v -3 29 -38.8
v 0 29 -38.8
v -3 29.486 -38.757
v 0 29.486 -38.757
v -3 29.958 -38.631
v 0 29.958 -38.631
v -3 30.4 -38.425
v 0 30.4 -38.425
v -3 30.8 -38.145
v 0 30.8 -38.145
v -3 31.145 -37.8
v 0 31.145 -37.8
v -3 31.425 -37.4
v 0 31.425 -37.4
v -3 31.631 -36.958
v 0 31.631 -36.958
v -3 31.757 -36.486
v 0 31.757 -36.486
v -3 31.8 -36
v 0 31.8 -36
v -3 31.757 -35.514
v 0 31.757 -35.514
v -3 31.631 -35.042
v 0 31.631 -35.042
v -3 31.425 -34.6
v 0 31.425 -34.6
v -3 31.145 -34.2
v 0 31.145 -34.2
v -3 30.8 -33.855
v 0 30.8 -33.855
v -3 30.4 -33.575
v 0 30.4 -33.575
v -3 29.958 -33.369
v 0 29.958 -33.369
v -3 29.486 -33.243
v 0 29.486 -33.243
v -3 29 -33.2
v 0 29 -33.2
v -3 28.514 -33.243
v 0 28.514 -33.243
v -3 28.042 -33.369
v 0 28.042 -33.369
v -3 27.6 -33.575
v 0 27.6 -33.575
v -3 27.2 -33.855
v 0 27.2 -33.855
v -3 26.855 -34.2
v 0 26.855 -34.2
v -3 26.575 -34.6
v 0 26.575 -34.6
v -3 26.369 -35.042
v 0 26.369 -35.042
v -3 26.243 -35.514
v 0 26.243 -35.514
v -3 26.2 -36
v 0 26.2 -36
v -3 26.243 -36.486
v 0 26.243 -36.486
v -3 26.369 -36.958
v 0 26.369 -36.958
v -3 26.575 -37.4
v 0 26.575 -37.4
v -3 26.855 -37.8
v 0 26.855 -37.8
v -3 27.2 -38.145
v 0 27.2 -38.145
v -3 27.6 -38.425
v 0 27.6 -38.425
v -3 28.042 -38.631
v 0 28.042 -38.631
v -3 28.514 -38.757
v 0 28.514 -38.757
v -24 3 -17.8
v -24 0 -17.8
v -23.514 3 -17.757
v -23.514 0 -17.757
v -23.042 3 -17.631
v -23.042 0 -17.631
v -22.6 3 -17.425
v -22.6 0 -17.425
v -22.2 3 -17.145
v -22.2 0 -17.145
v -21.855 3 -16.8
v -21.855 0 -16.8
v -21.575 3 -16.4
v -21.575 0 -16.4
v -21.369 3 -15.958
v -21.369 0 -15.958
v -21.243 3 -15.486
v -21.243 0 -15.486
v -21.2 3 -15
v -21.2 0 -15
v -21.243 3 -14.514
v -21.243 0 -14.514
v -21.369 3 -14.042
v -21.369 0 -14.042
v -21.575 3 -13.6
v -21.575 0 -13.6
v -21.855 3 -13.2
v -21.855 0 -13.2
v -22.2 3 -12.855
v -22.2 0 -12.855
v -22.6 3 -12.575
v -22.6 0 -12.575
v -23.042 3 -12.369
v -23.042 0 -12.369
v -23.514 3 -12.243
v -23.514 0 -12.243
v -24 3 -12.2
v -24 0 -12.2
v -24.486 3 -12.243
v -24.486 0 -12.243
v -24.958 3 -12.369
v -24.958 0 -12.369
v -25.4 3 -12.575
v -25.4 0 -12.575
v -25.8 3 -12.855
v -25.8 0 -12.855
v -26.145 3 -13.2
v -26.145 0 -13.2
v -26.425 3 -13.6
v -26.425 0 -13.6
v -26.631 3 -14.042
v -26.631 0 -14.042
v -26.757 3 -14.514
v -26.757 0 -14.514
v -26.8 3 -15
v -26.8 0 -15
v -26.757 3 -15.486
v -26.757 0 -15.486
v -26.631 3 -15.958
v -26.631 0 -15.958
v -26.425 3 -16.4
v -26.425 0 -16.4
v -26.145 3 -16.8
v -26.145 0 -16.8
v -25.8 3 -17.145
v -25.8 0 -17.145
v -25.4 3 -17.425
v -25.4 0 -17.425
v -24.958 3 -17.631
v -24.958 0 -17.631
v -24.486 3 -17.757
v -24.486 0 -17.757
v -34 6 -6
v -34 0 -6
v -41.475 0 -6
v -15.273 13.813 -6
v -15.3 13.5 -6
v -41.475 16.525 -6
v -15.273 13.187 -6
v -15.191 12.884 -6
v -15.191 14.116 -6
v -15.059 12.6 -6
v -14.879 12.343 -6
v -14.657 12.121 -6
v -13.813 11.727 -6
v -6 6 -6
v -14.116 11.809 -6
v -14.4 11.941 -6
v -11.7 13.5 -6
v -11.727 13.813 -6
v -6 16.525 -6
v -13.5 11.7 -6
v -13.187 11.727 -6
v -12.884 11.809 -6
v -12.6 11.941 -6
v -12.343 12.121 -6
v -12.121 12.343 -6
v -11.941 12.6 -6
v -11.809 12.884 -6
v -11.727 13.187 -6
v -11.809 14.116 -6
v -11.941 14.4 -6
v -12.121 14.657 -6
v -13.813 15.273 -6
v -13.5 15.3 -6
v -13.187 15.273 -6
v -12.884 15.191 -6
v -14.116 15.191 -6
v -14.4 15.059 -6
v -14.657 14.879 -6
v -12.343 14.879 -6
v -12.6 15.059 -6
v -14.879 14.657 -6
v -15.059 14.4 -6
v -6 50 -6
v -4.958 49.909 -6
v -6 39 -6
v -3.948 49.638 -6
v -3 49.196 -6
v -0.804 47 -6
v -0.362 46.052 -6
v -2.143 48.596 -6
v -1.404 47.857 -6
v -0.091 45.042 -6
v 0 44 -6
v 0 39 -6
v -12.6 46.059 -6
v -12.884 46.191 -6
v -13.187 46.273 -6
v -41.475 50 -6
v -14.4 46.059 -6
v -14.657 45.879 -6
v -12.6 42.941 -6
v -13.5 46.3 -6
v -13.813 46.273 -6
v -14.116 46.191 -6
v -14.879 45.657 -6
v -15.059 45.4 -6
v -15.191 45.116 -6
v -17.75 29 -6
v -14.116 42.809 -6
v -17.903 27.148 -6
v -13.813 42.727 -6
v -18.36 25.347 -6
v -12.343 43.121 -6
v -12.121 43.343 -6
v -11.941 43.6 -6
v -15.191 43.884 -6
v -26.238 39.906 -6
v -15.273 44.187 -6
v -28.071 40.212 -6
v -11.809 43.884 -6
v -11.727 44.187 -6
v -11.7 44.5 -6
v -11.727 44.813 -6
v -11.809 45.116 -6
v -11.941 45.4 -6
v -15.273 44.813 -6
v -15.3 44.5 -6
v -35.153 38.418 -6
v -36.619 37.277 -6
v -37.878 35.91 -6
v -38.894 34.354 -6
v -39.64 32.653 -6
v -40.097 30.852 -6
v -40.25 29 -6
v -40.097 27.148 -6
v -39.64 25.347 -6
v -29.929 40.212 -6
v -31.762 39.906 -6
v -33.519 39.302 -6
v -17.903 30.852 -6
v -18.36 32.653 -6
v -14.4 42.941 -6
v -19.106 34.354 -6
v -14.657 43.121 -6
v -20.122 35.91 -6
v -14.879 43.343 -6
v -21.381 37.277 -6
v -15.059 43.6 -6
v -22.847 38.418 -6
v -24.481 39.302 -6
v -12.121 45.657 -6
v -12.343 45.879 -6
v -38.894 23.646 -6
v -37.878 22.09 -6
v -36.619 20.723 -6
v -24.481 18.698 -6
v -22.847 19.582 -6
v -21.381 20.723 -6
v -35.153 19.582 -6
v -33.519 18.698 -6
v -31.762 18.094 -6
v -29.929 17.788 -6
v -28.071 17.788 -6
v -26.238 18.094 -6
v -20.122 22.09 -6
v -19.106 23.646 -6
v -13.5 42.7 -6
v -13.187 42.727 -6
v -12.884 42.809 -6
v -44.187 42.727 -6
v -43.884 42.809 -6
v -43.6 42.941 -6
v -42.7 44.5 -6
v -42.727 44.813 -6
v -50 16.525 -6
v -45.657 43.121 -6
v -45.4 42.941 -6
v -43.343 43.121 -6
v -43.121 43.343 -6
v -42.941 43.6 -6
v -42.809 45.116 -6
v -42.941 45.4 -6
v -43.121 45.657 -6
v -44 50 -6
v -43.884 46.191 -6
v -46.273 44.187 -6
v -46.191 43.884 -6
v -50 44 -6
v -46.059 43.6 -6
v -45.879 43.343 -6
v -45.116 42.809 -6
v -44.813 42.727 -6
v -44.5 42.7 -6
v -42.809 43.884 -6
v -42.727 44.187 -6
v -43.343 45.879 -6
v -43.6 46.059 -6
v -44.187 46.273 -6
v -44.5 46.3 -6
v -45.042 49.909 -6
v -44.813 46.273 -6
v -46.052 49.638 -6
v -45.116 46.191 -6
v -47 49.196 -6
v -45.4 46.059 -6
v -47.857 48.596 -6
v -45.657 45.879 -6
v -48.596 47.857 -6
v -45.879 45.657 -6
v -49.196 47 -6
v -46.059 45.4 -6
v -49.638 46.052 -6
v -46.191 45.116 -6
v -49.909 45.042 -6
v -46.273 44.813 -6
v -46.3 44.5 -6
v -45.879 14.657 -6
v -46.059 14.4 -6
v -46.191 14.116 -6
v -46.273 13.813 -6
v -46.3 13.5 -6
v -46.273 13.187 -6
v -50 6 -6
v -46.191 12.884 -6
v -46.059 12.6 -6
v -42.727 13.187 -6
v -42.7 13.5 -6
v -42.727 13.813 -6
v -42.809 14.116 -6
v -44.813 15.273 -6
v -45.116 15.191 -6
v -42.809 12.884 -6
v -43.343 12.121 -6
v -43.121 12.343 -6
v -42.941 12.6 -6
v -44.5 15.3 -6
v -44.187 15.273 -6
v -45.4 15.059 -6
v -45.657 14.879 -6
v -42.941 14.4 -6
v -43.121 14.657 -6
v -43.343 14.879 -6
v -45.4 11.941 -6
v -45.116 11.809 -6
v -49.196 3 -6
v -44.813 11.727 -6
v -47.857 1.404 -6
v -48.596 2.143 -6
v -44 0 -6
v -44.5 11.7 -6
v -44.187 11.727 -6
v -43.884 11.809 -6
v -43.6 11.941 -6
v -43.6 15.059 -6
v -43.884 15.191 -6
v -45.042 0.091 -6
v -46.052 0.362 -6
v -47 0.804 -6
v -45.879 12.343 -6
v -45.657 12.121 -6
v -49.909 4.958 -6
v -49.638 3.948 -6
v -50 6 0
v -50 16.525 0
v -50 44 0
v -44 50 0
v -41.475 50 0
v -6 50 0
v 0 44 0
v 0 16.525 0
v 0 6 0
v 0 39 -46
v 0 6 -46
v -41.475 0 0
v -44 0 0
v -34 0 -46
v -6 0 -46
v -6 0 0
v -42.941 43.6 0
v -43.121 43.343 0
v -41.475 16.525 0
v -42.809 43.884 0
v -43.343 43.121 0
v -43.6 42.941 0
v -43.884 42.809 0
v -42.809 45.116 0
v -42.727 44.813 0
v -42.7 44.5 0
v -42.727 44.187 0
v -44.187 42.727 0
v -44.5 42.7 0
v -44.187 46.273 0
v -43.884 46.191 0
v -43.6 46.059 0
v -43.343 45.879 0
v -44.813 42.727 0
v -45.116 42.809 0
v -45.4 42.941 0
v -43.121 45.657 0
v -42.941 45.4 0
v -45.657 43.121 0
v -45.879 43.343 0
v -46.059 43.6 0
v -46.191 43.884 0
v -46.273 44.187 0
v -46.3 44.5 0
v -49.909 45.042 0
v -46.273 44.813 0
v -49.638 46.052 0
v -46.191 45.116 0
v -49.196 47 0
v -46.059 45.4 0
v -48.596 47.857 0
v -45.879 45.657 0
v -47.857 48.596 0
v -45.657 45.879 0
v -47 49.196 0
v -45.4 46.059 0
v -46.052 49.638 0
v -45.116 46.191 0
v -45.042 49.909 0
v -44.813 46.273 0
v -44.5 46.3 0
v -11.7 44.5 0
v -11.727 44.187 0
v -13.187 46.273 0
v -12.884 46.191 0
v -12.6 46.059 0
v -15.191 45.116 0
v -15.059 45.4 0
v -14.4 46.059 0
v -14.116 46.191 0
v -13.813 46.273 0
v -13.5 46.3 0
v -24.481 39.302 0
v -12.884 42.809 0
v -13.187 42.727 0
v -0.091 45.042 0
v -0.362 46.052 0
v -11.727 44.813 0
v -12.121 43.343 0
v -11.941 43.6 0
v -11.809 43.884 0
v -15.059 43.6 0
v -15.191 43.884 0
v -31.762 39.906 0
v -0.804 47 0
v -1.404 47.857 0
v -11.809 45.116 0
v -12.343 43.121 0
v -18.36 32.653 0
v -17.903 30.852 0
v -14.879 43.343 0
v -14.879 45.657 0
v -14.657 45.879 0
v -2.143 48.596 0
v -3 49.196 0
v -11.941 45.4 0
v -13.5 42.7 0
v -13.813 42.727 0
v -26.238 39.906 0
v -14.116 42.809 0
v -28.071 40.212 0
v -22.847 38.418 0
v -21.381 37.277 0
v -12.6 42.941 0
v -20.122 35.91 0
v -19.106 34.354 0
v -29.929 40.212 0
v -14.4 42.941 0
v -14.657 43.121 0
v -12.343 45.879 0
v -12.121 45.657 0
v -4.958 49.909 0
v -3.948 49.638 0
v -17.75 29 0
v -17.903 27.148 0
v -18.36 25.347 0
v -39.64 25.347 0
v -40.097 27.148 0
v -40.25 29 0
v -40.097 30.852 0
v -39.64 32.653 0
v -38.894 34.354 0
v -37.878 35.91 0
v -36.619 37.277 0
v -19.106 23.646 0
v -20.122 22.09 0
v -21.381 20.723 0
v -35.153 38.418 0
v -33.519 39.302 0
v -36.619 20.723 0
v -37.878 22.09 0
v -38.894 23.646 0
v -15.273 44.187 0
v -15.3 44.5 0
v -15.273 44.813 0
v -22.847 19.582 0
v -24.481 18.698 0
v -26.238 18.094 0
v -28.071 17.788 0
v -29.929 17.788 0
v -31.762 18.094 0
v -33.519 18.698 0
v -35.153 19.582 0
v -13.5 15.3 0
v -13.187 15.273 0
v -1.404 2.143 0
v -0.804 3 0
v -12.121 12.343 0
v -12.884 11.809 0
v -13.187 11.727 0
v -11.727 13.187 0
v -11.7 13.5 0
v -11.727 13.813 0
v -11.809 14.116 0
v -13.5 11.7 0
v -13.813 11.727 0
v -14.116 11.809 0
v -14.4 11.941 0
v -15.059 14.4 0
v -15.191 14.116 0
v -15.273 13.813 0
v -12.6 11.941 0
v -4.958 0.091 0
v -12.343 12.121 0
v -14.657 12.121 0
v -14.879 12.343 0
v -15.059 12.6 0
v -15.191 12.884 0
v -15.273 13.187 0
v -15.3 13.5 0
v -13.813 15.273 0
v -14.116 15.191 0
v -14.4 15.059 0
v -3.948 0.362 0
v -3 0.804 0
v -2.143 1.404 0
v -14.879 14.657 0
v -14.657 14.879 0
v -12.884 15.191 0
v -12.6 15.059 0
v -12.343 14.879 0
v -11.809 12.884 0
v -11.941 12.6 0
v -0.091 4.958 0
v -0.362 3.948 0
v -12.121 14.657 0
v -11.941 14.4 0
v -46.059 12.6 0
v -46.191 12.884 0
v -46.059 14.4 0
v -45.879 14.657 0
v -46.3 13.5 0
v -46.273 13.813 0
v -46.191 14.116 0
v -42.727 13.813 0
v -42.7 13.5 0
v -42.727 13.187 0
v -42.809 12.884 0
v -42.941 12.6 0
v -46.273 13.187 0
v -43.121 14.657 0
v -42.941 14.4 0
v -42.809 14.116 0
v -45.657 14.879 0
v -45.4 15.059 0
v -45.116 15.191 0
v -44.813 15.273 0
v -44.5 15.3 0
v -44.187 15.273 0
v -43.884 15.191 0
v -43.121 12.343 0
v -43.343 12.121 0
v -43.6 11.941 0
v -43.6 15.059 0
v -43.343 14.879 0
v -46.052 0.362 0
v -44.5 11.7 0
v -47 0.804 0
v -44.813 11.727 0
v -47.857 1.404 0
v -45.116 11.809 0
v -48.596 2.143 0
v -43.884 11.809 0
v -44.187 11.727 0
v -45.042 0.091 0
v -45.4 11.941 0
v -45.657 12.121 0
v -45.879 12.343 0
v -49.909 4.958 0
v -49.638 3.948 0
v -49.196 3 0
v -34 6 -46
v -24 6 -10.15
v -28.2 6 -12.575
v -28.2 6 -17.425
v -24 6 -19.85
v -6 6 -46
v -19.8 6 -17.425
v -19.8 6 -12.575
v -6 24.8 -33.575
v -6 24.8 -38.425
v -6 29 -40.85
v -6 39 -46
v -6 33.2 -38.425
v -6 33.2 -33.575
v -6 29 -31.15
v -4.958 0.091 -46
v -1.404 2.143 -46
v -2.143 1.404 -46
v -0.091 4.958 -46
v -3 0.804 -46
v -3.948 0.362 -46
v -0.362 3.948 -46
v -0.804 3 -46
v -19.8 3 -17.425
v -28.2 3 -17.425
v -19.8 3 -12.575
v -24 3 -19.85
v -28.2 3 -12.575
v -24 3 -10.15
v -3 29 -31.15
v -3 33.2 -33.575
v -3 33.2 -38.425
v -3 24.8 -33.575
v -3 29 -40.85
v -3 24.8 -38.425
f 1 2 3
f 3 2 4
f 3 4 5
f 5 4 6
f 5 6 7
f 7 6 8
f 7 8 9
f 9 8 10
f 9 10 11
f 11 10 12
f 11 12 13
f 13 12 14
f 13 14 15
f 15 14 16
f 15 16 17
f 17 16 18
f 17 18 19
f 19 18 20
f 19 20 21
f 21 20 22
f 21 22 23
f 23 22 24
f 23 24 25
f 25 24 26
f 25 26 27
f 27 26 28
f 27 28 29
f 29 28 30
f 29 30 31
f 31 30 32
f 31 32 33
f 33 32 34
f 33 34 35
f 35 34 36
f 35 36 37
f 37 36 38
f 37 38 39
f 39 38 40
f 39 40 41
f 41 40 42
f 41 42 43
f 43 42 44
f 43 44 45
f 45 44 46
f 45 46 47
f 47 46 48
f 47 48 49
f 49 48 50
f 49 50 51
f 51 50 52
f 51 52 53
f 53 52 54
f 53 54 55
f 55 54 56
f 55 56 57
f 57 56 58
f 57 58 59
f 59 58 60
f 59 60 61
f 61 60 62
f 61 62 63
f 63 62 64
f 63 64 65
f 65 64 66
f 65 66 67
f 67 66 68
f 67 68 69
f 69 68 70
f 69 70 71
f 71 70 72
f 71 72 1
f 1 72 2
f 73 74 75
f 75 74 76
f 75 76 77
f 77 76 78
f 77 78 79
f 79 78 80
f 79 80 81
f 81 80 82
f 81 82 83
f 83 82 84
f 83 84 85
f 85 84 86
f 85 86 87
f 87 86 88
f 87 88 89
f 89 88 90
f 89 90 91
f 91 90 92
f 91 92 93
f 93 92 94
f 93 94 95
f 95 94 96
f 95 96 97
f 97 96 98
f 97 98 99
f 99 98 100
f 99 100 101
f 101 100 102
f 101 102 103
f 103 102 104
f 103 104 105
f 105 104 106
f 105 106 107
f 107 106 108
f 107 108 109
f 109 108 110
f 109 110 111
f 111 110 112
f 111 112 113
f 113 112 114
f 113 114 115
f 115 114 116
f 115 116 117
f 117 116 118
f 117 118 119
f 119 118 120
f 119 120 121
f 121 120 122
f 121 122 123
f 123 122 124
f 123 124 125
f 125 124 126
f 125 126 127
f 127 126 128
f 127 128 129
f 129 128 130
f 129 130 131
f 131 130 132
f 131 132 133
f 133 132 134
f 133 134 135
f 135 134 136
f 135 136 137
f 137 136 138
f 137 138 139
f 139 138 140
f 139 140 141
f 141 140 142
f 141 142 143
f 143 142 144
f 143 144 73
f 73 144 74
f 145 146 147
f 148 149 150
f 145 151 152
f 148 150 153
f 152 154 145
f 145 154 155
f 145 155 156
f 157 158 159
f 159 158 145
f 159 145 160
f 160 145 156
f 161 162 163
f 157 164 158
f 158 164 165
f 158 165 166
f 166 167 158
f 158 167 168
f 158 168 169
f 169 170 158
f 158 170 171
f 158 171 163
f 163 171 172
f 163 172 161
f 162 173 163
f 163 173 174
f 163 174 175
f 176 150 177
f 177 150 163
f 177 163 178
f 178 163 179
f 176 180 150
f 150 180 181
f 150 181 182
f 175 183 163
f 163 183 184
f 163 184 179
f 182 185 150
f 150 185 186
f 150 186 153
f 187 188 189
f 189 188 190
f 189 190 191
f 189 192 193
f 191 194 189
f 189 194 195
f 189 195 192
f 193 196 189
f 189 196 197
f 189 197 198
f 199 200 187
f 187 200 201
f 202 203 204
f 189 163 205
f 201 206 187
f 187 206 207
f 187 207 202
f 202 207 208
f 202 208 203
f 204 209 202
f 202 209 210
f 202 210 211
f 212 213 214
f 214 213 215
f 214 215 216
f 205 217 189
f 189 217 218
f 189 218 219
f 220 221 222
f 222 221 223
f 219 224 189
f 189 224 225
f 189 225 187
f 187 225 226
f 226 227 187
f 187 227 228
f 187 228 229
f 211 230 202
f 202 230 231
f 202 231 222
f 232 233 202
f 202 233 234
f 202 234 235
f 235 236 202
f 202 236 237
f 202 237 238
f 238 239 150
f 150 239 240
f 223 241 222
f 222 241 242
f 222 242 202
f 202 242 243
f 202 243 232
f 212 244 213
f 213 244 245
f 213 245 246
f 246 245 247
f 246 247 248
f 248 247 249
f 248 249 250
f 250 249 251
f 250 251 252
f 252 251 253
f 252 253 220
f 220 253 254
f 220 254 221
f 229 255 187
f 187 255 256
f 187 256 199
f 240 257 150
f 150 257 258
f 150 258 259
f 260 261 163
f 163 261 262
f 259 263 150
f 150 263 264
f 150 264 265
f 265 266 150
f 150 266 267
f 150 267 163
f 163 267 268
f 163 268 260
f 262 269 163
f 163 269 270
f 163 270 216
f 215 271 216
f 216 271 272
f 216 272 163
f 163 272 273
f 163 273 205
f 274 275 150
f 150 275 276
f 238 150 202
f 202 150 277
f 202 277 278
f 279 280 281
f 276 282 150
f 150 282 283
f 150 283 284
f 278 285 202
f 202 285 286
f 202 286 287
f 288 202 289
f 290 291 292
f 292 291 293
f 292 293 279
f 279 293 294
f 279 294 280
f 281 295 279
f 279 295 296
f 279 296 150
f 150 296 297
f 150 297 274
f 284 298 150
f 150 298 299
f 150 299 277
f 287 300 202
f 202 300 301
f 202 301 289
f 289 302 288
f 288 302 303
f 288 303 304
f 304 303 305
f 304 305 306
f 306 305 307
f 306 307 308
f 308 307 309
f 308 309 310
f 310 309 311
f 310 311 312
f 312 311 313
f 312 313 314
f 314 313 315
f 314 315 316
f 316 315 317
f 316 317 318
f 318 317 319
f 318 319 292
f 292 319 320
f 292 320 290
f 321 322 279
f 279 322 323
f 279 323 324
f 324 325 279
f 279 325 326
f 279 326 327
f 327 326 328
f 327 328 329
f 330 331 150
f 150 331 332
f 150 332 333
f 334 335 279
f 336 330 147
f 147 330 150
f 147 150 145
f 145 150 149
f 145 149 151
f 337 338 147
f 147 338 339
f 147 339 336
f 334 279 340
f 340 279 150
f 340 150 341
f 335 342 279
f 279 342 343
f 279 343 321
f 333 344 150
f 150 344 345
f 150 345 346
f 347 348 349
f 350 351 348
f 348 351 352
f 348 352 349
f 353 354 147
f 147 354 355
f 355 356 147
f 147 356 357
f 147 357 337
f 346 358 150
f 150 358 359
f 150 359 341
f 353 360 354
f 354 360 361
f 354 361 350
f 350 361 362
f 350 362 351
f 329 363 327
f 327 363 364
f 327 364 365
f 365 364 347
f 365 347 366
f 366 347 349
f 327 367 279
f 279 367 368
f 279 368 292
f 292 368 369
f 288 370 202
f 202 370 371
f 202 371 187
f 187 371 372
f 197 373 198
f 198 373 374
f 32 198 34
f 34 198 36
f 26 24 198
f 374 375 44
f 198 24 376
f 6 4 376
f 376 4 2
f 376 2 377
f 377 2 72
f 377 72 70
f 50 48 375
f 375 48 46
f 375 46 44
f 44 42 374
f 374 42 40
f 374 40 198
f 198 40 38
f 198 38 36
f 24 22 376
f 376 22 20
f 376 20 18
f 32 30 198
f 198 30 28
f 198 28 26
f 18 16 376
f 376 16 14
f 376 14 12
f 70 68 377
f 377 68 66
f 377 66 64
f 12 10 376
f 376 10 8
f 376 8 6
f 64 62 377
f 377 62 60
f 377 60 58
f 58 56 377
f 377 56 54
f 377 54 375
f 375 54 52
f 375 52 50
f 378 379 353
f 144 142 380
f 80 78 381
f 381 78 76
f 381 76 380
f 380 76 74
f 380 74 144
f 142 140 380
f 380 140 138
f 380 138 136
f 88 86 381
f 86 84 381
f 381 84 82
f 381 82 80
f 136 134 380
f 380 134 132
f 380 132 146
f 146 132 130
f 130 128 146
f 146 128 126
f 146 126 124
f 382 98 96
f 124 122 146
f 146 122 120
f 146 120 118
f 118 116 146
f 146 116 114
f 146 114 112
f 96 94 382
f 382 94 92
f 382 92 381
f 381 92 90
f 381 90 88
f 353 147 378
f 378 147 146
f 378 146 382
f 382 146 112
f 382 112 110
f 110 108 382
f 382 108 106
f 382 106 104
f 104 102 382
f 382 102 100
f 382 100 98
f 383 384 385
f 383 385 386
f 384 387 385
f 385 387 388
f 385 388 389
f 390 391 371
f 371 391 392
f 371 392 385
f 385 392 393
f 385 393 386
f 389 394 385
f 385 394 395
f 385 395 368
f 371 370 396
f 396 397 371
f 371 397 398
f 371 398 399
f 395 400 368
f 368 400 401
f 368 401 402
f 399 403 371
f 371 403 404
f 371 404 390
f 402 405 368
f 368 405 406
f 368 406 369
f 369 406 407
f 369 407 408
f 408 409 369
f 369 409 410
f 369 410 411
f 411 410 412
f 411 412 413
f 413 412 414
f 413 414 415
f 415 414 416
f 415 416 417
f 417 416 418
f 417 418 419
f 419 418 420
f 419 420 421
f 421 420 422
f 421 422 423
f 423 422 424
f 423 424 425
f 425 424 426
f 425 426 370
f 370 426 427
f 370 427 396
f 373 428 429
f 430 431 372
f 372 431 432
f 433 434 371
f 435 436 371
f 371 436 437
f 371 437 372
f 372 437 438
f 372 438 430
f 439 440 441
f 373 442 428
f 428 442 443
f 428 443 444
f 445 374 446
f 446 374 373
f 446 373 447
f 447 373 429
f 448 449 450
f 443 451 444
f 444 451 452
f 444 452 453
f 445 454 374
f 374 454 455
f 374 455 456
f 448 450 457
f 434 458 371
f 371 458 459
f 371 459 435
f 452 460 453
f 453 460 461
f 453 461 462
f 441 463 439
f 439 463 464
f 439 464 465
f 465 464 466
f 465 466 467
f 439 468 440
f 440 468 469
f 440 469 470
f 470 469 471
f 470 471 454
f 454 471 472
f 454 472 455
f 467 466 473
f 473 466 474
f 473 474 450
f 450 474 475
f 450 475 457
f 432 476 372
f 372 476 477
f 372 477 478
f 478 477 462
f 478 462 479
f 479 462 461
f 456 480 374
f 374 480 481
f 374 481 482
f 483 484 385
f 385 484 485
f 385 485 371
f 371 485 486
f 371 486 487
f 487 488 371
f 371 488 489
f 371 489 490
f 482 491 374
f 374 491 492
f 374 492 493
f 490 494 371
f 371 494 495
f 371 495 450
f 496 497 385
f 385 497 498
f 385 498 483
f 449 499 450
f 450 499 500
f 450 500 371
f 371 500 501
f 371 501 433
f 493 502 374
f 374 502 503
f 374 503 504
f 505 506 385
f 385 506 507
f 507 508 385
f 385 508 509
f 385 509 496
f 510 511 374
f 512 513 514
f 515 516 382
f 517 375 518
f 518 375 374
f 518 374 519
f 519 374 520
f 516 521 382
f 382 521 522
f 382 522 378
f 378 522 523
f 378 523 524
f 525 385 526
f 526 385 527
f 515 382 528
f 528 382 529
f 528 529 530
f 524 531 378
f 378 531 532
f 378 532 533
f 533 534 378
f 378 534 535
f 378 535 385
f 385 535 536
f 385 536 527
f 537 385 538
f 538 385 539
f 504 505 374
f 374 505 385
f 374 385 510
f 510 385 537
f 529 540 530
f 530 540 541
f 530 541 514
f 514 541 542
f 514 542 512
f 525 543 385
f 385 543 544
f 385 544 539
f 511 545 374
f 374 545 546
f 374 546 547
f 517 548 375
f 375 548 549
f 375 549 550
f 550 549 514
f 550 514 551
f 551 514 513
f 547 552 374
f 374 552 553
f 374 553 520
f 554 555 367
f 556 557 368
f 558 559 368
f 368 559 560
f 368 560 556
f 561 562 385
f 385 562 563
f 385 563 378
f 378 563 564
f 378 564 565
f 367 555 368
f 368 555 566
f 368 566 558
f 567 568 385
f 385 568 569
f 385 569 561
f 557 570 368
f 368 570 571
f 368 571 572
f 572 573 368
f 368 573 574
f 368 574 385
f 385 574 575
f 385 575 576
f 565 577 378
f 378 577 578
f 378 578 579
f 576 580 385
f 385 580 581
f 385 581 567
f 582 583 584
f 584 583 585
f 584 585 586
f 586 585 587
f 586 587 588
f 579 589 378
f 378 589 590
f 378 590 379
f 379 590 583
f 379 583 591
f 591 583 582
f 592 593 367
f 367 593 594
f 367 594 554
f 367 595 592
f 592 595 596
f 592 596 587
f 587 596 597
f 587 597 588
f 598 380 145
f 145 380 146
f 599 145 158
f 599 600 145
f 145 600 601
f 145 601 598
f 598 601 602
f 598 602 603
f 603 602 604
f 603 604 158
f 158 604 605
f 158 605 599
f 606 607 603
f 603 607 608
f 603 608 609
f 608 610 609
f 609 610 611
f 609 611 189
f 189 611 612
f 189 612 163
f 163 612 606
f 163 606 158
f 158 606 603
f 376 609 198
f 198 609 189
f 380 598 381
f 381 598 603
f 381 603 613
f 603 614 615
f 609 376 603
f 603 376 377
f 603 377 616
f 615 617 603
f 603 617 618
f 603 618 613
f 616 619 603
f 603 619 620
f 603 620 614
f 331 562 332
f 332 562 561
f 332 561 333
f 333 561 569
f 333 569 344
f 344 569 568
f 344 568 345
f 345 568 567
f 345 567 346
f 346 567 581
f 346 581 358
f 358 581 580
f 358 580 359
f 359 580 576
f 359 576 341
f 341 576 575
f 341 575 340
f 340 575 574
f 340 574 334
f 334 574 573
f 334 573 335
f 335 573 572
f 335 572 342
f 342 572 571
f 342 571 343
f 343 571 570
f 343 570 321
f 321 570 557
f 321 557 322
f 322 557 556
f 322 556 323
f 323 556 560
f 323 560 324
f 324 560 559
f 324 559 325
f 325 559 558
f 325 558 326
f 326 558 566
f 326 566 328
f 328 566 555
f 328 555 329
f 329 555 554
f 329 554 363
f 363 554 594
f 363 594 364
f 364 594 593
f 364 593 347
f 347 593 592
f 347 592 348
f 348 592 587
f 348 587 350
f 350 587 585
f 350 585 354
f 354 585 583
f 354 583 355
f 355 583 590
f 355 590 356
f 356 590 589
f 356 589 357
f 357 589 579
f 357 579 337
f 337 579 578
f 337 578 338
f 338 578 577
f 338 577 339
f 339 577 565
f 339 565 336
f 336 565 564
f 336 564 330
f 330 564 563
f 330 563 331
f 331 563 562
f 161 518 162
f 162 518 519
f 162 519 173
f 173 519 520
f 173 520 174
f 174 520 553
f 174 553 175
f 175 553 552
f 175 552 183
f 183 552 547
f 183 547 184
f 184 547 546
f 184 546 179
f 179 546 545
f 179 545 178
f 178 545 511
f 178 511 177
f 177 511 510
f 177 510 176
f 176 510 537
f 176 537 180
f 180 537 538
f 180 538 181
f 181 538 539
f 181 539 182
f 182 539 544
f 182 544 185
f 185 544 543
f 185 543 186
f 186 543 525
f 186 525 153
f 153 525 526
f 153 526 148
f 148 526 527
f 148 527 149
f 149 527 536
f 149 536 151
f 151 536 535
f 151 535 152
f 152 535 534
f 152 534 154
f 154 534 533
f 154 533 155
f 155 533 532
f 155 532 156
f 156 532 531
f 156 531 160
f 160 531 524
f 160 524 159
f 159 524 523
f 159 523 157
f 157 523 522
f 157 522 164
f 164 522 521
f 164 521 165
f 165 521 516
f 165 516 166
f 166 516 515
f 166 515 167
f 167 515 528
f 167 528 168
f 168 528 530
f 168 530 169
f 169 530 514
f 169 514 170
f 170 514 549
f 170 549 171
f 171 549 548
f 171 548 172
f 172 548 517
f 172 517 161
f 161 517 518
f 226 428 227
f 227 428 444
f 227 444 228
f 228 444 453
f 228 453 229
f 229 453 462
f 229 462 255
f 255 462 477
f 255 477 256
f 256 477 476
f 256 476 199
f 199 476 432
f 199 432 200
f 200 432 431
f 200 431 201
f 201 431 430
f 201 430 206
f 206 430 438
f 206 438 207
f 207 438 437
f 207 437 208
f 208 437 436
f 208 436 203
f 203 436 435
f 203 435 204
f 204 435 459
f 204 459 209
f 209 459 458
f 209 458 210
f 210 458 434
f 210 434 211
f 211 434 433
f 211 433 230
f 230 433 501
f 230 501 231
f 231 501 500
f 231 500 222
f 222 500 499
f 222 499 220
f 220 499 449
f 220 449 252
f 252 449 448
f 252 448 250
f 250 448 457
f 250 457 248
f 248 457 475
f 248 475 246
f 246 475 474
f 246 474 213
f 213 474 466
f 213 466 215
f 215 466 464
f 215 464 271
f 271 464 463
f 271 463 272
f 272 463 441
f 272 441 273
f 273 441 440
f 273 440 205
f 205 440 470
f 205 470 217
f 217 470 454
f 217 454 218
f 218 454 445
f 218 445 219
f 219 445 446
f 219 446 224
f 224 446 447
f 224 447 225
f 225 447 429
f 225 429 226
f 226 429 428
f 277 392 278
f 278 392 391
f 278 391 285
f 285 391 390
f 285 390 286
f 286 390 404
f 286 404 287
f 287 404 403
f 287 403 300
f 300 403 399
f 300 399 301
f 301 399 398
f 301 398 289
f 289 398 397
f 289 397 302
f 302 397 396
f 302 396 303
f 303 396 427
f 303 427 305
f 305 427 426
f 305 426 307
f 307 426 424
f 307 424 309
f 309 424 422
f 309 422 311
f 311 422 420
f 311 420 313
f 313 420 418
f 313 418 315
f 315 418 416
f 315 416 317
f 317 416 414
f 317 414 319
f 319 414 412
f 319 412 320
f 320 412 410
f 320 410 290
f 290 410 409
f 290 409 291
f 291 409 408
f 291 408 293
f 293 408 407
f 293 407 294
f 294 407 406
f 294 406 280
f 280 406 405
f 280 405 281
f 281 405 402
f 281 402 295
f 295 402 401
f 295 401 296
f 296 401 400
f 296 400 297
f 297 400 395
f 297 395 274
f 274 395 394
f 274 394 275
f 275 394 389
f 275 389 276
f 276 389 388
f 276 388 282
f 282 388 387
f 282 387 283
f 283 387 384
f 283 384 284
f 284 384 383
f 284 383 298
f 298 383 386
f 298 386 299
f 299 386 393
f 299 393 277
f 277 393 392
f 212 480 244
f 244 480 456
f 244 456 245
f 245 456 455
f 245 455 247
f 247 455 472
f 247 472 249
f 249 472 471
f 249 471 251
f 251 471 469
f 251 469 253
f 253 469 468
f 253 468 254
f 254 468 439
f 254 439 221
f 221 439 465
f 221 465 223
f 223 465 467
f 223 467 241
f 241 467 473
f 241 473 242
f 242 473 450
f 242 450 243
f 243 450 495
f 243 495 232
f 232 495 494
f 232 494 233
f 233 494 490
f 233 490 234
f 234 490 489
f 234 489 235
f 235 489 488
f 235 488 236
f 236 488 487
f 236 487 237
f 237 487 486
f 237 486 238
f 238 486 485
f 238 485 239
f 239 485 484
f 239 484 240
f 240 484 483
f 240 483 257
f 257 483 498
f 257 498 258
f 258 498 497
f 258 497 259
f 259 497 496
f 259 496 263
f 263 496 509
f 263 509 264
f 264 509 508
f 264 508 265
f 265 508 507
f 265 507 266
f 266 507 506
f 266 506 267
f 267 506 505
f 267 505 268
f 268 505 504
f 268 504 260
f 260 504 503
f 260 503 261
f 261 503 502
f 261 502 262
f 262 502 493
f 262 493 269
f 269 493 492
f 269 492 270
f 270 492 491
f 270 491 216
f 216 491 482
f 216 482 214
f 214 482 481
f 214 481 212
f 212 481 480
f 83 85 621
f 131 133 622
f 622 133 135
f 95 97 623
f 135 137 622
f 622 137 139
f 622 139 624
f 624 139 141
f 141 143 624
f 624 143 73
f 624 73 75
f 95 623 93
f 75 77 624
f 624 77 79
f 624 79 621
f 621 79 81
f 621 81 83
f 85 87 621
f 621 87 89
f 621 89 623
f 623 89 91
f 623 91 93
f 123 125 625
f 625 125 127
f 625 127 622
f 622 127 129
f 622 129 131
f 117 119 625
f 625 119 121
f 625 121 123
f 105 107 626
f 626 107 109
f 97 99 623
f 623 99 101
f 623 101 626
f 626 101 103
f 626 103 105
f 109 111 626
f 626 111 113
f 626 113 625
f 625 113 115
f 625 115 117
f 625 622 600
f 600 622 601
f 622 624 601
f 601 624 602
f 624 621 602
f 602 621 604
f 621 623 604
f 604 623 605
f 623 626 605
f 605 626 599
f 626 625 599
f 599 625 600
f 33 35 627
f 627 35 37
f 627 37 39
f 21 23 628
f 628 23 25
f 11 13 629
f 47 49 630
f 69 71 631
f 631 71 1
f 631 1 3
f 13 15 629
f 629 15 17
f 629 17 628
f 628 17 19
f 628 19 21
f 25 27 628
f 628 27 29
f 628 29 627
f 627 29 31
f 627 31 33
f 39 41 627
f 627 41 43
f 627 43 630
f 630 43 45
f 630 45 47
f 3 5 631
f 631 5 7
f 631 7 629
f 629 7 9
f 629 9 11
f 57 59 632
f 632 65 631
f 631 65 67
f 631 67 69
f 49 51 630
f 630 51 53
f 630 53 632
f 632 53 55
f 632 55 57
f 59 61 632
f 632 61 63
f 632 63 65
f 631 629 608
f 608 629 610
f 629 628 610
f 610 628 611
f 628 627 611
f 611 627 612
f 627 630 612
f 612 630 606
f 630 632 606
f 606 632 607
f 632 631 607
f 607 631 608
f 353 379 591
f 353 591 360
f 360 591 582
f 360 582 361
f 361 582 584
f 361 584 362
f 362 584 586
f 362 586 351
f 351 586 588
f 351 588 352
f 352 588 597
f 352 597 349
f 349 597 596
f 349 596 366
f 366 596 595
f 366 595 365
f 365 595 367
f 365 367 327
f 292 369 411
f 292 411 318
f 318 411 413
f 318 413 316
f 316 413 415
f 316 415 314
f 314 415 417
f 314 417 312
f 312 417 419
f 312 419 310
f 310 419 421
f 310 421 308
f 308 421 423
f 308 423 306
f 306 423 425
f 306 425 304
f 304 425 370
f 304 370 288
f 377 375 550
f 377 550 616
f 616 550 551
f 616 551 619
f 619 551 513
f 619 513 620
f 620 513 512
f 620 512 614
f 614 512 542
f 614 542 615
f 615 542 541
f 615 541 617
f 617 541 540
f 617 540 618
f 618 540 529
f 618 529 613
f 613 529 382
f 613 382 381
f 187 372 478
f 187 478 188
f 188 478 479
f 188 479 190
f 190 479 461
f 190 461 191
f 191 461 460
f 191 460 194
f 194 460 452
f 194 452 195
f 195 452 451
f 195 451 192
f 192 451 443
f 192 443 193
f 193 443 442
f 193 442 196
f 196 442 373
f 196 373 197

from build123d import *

# Parameters (mm, degrees)
SKETCH1_W              = 50
SKETCH1_H              = 50
BOSS_EXTRUDE1_DEPTH    = 6
BOSS_EXTRUDE2_DEPTH    = 40
F_3_6MM_DOWEL_HOLE1_D  = 3.6
F_22_5MM_DOWEL_HOLE1_D = 22.5
F_5_6MM_DOWEL_HOLE1_D  = 5.6
F_5_6MM_DOWEL_HOLE2_D  = 5.6
CUT_EXTRUDE1_DEPTH     = 3
CUT_EXTRUDE2_DEPTH     = 3
FILLET1_R              = 6


with BuildPart() as part:
    # Sketch1 → Boss-Extrude1 (new body)
    with BuildSketch(Plane.XY):
        with Locations((-25, 25)):
            Rectangle(SKETCH1_W, SKETCH1_H)
    extrude(amount=-BOSS_EXTRUDE1_DEPTH)

    # Sketch2 → Boss-Extrude2 (add)
    with BuildSketch(Plane(origin=(0, 0, -6), x_dir=(-1, 0, 0), z_dir=(0, 0, -1))):
        Polygon((0, 39), (6, 39), (6, 6), (34, 6), (34, 0), (6, 0), (0, 0), align=None)
    extrude(amount=BOSS_EXTRUDE2_DEPTH)

    # Ø3.6mm Dowel Hole1 (through all)
    with Locations(Plane.XY):
        with Locations((-44.5, 44.5), (-13.5, 44.5), (-13.5, 13.5), (-44.5, 13.5)):
            Hole(F_3_6MM_DOWEL_HOLE1_D / 2)

    # Ø22.5mm Dowel Hole1 (through all)
    with Locations(Plane.XY):
        with Locations((-29, 29)):
            Hole(F_22_5MM_DOWEL_HOLE1_D / 2)

    # Ø5.6mm Dowel Hole1 (through all)
    with Locations(Plane(origin=(0, 29, -36), x_dir=(0, 0, 1), z_dir=(1, 0, 0))):
        with Locations((0, 0)):
            Hole(F_5_6MM_DOWEL_HOLE1_D / 2)

    # Ø5.6mm Dowel Hole2 (through all)
    with Locations(Plane(origin=(0, 0, 0), x_dir=(-1, 0, 0), z_dir=(0, -1, 0))):
        with Locations((24, 15)):
            Hole(F_5_6MM_DOWEL_HOLE2_D / 2)

    # Sketch12 → Cut-Extrude1 (cut)
    with BuildSketch(Plane(origin=(0, 6, 0), x_dir=(1, 0, 0), z_dir=(0, 1, 0))):
        Polygon((-28.2, 12.575128869), (-24, 10.150257739), (-19.8, 12.575128869), (-19.8, 17.424871131), (-24, 19.849742261), (-28.2, 17.424871131), align=None)
    extrude(amount=-CUT_EXTRUDE1_DEPTH, mode=Mode.SUBTRACT)

    # Sketch13 → Cut-Extrude2 (cut)
    with BuildSketch(Plane.ZY.offset(6)):
        Polygon((-40.849742261, 29), (-38.424871131, 24.8), (-33.575128869, 24.8), (-31.150257739, 29), (-33.575128869, 33.2), (-38.424871131, 33.2), align=None)
    extrude(amount=-CUT_EXTRUDE2_DEPTH, mode=Mode.SUBTRACT)

    # Fillet1
    fillet1_edges = [part.edges().sort_by_distance(p)[0] for p in [
        (-50, 50, -3),
        (0, 50, -3),
        (0, 0, -23),
        (-50, 0, -3),
    ]]
    fillet(fillet1_edges, radius=FILLET1_R)


solid = part.part
